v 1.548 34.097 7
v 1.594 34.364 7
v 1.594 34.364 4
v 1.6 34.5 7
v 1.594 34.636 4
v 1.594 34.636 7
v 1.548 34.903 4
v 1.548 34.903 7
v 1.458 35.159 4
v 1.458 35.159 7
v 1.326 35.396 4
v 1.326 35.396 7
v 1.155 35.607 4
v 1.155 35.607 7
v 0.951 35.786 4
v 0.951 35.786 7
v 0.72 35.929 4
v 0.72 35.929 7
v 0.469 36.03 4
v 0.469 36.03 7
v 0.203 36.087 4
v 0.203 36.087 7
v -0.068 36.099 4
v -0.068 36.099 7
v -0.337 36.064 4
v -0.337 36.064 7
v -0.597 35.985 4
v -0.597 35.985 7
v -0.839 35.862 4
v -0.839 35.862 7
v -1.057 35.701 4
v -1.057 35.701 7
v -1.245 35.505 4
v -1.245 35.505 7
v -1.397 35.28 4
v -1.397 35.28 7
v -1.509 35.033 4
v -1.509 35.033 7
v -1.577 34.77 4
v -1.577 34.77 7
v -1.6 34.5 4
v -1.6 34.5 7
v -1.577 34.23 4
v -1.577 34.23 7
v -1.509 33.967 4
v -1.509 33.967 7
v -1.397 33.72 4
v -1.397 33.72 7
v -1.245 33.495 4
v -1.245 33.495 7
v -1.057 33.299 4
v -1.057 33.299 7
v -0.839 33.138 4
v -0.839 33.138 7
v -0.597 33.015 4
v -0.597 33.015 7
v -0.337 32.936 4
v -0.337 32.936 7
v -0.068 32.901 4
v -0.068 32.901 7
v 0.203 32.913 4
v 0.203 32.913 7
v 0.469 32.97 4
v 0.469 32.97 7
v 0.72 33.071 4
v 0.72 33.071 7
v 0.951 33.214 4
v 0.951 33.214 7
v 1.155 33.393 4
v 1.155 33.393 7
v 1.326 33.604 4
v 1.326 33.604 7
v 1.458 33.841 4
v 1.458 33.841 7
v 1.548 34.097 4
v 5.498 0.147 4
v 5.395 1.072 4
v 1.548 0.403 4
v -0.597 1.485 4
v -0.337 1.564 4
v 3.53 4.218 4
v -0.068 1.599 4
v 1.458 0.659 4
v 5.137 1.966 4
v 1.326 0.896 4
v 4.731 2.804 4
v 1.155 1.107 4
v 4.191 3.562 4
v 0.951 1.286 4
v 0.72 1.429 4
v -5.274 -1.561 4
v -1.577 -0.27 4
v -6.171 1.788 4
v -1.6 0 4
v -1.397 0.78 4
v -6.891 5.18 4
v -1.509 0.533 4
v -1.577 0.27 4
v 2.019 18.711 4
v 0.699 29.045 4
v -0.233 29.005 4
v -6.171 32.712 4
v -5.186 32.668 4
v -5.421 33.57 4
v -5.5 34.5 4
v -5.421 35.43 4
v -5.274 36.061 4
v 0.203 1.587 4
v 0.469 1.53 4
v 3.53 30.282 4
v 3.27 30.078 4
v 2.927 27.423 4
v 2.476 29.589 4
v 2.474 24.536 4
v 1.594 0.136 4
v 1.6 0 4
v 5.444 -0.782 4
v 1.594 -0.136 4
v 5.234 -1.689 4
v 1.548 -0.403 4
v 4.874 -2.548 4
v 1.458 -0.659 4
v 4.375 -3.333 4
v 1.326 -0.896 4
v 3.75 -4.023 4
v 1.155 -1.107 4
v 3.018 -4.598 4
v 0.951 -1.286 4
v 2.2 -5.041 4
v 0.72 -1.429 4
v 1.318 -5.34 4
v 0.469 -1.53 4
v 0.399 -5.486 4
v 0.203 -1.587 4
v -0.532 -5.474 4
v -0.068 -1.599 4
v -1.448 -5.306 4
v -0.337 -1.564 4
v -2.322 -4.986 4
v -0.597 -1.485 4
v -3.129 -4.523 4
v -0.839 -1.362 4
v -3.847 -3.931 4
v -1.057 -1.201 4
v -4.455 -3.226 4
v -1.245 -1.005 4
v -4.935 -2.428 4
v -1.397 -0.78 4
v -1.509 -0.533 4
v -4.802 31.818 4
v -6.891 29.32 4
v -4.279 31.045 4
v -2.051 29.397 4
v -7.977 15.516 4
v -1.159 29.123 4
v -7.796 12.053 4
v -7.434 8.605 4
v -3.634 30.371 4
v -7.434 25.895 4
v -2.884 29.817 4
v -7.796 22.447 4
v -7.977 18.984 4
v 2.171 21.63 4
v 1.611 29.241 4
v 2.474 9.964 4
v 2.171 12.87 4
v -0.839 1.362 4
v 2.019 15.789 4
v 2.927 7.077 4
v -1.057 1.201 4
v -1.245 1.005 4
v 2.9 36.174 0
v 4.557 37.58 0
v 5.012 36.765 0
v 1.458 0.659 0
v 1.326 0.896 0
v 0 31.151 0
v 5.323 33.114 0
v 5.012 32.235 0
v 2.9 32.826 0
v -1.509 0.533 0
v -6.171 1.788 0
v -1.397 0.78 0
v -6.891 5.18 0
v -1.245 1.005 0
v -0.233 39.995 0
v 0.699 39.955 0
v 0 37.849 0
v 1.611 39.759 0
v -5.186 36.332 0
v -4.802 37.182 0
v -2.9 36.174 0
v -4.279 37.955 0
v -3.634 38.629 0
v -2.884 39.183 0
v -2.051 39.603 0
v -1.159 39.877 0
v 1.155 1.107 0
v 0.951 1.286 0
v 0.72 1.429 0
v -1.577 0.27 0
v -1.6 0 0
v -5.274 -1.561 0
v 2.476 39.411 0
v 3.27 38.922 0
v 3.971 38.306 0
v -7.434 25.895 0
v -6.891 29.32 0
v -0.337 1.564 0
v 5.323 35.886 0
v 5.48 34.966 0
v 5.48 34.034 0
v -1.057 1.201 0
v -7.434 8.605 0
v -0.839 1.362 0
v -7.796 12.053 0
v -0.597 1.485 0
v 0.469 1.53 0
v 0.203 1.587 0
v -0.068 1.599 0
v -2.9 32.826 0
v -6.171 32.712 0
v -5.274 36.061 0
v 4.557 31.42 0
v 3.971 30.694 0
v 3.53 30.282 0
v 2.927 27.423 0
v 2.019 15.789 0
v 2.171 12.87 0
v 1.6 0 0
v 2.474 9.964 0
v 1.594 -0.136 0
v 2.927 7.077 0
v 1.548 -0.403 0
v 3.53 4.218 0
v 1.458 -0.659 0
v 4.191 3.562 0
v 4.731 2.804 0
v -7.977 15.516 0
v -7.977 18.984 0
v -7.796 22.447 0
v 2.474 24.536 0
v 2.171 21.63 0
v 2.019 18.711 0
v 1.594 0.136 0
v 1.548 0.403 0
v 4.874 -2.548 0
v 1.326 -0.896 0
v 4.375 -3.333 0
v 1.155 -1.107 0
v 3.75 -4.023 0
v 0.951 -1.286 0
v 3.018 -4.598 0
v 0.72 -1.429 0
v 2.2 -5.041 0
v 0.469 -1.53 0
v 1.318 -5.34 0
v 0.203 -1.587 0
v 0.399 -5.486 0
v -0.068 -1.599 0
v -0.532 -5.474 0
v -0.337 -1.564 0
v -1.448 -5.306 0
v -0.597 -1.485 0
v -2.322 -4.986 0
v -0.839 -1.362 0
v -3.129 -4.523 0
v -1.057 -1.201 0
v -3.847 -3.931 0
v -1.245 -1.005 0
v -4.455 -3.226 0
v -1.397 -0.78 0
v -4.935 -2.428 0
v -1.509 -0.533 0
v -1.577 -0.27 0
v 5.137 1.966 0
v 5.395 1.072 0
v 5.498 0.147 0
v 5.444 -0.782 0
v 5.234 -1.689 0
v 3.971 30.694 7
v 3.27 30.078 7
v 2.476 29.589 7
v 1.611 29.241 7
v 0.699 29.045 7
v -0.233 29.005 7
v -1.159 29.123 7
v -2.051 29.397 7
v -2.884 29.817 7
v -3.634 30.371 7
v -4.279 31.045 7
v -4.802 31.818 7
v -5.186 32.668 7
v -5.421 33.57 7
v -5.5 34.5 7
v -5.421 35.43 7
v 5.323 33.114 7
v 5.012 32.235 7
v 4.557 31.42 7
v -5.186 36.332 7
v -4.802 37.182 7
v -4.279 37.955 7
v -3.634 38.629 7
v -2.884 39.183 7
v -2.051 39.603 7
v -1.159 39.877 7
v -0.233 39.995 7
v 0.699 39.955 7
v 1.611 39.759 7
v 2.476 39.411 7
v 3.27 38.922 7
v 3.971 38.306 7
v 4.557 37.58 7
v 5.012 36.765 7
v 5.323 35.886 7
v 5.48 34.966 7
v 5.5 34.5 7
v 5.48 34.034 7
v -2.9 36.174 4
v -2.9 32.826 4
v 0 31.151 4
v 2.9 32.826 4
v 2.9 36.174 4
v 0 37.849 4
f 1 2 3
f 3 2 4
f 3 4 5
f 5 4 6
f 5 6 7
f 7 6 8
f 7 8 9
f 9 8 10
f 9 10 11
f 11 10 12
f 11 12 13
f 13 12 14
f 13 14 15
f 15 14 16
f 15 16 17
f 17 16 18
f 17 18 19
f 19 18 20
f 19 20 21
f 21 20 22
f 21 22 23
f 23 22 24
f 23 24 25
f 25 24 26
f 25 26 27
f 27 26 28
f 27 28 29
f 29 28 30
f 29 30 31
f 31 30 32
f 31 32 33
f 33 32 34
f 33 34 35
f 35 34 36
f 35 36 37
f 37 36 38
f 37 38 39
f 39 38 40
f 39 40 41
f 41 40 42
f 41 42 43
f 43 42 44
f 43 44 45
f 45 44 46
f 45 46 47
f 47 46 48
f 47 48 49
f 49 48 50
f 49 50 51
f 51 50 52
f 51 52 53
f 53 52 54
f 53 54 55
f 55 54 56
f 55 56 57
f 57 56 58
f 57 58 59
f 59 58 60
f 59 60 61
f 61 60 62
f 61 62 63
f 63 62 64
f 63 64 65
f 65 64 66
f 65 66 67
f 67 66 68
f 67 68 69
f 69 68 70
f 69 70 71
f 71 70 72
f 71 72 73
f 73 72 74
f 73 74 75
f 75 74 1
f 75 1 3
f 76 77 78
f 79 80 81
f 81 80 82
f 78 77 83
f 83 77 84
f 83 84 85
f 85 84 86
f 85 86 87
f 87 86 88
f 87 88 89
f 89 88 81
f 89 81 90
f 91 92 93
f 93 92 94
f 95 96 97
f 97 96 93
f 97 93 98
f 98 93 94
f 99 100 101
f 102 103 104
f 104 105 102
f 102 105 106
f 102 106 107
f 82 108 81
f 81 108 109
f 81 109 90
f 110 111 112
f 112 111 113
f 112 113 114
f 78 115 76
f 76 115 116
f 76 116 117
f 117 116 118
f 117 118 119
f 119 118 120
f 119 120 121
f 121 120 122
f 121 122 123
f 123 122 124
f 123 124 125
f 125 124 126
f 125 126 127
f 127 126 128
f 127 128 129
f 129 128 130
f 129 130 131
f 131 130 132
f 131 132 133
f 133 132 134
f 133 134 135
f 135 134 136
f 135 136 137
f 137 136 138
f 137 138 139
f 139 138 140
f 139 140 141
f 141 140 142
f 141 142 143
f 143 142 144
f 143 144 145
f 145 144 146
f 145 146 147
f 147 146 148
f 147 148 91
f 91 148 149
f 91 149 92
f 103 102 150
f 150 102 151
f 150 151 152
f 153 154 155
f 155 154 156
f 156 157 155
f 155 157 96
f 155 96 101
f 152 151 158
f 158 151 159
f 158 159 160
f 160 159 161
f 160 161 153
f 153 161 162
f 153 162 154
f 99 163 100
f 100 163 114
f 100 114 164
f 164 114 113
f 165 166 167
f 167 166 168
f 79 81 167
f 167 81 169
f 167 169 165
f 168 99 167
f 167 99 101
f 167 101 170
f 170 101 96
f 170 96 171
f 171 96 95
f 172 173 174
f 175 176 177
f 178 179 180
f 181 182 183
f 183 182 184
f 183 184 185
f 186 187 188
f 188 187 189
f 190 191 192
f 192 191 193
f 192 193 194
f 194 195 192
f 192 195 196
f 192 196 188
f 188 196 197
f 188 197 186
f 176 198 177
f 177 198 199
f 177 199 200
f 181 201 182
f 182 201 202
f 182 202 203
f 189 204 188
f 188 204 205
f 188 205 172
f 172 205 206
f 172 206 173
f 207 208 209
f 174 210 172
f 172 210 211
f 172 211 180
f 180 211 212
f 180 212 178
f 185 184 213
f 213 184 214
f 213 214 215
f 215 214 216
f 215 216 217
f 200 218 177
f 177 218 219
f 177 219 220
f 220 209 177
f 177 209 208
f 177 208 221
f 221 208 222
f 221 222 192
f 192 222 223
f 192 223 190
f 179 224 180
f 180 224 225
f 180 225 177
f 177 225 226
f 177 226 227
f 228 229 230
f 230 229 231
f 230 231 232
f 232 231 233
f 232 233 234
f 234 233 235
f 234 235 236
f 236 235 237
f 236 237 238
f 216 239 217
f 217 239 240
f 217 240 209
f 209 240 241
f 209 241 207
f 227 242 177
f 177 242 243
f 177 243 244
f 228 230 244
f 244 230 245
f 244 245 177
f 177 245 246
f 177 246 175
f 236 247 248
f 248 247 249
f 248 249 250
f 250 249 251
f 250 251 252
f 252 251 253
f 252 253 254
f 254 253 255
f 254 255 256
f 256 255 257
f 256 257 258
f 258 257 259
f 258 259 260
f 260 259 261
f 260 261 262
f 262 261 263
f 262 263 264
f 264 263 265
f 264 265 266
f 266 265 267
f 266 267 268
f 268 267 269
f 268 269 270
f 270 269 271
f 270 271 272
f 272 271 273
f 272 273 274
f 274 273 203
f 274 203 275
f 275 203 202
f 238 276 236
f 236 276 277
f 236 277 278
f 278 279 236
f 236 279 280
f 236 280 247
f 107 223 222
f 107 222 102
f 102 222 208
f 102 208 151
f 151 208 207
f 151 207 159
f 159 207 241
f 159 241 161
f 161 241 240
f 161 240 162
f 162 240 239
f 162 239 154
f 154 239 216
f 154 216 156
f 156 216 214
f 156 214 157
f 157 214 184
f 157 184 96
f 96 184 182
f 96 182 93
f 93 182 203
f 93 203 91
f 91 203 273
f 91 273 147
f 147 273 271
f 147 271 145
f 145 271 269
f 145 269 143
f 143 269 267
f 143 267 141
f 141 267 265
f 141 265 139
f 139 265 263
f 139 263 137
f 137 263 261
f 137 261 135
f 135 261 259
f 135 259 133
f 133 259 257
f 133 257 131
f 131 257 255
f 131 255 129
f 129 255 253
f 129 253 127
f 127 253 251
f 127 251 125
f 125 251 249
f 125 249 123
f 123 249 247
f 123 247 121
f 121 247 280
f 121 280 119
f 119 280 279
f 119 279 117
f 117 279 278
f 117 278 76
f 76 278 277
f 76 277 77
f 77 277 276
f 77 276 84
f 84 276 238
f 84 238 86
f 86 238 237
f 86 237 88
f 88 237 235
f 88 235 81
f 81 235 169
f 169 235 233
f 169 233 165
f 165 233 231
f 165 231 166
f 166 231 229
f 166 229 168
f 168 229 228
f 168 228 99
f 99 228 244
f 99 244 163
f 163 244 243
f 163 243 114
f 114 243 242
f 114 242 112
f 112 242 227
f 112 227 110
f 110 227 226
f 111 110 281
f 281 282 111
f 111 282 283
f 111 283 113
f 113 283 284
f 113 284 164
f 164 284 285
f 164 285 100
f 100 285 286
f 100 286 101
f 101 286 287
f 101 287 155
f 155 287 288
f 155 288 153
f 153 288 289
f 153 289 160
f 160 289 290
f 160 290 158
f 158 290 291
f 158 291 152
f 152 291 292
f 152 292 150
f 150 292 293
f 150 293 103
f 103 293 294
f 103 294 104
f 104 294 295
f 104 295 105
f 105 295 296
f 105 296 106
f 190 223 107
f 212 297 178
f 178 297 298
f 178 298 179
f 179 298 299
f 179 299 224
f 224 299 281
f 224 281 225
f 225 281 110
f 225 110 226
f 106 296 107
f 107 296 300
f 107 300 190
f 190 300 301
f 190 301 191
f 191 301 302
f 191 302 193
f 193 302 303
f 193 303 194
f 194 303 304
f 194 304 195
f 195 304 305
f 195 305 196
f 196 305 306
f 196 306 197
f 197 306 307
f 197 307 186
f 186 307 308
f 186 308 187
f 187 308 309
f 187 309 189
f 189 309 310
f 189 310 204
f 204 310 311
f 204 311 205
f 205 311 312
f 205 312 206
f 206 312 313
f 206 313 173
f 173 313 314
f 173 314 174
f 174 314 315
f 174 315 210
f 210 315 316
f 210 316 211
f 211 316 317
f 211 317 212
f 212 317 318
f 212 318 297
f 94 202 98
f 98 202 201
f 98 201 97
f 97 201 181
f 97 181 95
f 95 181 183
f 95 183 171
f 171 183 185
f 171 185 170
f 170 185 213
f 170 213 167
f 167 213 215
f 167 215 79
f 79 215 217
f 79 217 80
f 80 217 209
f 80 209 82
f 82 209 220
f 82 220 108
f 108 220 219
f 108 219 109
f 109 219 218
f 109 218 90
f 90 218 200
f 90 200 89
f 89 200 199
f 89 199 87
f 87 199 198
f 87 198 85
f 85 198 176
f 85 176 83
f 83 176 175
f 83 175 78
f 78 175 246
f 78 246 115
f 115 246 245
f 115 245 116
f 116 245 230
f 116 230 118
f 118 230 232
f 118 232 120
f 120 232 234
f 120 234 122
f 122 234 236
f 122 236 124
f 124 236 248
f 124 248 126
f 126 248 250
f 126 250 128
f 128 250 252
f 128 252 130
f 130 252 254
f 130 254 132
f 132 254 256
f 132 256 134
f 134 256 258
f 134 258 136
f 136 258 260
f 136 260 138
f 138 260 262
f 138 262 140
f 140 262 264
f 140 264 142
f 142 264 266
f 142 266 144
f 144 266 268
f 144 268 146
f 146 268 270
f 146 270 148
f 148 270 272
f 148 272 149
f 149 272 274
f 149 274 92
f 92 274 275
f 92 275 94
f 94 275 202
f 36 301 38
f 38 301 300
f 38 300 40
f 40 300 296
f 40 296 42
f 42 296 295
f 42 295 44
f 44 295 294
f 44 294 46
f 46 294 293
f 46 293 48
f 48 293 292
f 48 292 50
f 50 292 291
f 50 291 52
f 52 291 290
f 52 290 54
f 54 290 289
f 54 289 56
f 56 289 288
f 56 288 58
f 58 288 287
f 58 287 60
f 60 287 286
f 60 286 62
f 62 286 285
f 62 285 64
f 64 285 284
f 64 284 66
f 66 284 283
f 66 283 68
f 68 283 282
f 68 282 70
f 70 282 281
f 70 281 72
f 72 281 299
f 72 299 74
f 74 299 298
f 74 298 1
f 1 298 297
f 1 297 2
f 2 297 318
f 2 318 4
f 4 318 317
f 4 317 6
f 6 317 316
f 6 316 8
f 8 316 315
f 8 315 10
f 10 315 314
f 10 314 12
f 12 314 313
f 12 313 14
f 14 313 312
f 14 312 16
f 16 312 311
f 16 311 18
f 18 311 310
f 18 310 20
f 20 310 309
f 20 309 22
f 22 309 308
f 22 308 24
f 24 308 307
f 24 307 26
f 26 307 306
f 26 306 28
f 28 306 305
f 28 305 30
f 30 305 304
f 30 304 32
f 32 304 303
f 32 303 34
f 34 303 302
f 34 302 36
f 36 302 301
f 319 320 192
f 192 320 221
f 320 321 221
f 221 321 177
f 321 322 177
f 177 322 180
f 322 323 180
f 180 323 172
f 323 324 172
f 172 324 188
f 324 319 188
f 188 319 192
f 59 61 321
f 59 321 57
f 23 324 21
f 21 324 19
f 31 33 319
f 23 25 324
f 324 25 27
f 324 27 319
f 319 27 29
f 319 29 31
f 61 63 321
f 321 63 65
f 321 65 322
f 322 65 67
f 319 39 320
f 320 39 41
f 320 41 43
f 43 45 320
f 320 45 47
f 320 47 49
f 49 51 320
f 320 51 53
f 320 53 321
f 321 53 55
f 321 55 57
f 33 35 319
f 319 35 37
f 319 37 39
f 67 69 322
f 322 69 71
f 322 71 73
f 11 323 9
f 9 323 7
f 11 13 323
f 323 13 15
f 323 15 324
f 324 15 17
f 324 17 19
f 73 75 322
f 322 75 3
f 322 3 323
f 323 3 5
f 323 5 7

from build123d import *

# Parameters (mm, degrees)
IZIM1_R                     = 1.6
Y_KSEKLIK_EKSTR_ZYON1_DEPTH = 4
IZIM3_R                     = 5.5
IZIM3_R_2                   = 1.6
Y_KSEKLIK_EKSTR_ZYON3_DEPTH = 3
KES_EKSTR_ZYON1_DEPTH       = 4


with BuildPart() as part:
    # Çizim1 → Yükseklik-Ekstrüzyon1 (new body)
    with BuildSketch(Plane.XY):
        with BuildLine():
            ThreePointArc((-5.273709113, -1.561407118), (3.018112795, -4.597933792), (3.530207231, 4.2175392))
            ThreePointArc((3.530207231, 4.2175392), (2, 17.25), (3.530207231, 30.2824608))
            ThreePointArc((3.530207231, 30.2824608), (3.018112795, 39.097933792), (-5.273709113, 36.061407118))
            ThreePointArc((-5.273709113, 36.061407118), (-8, 17.25), (-5.273709113, -1.561407118))
        make_face()
        with Locations((0, 34.5)):
            Circle(IZIM1_R, mode=Mode.SUBTRACT)
        Circle(IZIM1_R, mode=Mode.SUBTRACT)
    extrude(amount=Y_KSEKLIK_EKSTR_ZYON1_DEPTH)

    # Çizim3 → Yükseklik-Ekstrüzyon3 (add)
    with BuildSketch(Plane.XY.offset(4)):
        with Locations(Location((0, 34.5, 0), (0, 0, 163.507358371))):
            Circle(IZIM3_R)
        with Locations((0, 34.5)):
            Circle(IZIM3_R_2, mode=Mode.SUBTRACT)
    extrude(amount=Y_KSEKLIK_EKSTR_ZYON3_DEPTH)

    # Çizim4 → Kes-Ekstrüzyon1 (cut)
    with BuildSketch(Plane(origin=(0, 0, 0), x_dir=(-1, 0, 0), z_dir=(0, 0, -1))):
        Polygon((2.9, 36.174315781), (0, 37.848631561), (-2.9, 36.174315781), (-2.9, 32.825684219), (0, 31.151368439), (2.9, 32.825684219), align=None)
    extrude(amount=-KES_EKSTR_ZYON1_DEPTH, mode=Mode.SUBTRACT)


solid = part.part
